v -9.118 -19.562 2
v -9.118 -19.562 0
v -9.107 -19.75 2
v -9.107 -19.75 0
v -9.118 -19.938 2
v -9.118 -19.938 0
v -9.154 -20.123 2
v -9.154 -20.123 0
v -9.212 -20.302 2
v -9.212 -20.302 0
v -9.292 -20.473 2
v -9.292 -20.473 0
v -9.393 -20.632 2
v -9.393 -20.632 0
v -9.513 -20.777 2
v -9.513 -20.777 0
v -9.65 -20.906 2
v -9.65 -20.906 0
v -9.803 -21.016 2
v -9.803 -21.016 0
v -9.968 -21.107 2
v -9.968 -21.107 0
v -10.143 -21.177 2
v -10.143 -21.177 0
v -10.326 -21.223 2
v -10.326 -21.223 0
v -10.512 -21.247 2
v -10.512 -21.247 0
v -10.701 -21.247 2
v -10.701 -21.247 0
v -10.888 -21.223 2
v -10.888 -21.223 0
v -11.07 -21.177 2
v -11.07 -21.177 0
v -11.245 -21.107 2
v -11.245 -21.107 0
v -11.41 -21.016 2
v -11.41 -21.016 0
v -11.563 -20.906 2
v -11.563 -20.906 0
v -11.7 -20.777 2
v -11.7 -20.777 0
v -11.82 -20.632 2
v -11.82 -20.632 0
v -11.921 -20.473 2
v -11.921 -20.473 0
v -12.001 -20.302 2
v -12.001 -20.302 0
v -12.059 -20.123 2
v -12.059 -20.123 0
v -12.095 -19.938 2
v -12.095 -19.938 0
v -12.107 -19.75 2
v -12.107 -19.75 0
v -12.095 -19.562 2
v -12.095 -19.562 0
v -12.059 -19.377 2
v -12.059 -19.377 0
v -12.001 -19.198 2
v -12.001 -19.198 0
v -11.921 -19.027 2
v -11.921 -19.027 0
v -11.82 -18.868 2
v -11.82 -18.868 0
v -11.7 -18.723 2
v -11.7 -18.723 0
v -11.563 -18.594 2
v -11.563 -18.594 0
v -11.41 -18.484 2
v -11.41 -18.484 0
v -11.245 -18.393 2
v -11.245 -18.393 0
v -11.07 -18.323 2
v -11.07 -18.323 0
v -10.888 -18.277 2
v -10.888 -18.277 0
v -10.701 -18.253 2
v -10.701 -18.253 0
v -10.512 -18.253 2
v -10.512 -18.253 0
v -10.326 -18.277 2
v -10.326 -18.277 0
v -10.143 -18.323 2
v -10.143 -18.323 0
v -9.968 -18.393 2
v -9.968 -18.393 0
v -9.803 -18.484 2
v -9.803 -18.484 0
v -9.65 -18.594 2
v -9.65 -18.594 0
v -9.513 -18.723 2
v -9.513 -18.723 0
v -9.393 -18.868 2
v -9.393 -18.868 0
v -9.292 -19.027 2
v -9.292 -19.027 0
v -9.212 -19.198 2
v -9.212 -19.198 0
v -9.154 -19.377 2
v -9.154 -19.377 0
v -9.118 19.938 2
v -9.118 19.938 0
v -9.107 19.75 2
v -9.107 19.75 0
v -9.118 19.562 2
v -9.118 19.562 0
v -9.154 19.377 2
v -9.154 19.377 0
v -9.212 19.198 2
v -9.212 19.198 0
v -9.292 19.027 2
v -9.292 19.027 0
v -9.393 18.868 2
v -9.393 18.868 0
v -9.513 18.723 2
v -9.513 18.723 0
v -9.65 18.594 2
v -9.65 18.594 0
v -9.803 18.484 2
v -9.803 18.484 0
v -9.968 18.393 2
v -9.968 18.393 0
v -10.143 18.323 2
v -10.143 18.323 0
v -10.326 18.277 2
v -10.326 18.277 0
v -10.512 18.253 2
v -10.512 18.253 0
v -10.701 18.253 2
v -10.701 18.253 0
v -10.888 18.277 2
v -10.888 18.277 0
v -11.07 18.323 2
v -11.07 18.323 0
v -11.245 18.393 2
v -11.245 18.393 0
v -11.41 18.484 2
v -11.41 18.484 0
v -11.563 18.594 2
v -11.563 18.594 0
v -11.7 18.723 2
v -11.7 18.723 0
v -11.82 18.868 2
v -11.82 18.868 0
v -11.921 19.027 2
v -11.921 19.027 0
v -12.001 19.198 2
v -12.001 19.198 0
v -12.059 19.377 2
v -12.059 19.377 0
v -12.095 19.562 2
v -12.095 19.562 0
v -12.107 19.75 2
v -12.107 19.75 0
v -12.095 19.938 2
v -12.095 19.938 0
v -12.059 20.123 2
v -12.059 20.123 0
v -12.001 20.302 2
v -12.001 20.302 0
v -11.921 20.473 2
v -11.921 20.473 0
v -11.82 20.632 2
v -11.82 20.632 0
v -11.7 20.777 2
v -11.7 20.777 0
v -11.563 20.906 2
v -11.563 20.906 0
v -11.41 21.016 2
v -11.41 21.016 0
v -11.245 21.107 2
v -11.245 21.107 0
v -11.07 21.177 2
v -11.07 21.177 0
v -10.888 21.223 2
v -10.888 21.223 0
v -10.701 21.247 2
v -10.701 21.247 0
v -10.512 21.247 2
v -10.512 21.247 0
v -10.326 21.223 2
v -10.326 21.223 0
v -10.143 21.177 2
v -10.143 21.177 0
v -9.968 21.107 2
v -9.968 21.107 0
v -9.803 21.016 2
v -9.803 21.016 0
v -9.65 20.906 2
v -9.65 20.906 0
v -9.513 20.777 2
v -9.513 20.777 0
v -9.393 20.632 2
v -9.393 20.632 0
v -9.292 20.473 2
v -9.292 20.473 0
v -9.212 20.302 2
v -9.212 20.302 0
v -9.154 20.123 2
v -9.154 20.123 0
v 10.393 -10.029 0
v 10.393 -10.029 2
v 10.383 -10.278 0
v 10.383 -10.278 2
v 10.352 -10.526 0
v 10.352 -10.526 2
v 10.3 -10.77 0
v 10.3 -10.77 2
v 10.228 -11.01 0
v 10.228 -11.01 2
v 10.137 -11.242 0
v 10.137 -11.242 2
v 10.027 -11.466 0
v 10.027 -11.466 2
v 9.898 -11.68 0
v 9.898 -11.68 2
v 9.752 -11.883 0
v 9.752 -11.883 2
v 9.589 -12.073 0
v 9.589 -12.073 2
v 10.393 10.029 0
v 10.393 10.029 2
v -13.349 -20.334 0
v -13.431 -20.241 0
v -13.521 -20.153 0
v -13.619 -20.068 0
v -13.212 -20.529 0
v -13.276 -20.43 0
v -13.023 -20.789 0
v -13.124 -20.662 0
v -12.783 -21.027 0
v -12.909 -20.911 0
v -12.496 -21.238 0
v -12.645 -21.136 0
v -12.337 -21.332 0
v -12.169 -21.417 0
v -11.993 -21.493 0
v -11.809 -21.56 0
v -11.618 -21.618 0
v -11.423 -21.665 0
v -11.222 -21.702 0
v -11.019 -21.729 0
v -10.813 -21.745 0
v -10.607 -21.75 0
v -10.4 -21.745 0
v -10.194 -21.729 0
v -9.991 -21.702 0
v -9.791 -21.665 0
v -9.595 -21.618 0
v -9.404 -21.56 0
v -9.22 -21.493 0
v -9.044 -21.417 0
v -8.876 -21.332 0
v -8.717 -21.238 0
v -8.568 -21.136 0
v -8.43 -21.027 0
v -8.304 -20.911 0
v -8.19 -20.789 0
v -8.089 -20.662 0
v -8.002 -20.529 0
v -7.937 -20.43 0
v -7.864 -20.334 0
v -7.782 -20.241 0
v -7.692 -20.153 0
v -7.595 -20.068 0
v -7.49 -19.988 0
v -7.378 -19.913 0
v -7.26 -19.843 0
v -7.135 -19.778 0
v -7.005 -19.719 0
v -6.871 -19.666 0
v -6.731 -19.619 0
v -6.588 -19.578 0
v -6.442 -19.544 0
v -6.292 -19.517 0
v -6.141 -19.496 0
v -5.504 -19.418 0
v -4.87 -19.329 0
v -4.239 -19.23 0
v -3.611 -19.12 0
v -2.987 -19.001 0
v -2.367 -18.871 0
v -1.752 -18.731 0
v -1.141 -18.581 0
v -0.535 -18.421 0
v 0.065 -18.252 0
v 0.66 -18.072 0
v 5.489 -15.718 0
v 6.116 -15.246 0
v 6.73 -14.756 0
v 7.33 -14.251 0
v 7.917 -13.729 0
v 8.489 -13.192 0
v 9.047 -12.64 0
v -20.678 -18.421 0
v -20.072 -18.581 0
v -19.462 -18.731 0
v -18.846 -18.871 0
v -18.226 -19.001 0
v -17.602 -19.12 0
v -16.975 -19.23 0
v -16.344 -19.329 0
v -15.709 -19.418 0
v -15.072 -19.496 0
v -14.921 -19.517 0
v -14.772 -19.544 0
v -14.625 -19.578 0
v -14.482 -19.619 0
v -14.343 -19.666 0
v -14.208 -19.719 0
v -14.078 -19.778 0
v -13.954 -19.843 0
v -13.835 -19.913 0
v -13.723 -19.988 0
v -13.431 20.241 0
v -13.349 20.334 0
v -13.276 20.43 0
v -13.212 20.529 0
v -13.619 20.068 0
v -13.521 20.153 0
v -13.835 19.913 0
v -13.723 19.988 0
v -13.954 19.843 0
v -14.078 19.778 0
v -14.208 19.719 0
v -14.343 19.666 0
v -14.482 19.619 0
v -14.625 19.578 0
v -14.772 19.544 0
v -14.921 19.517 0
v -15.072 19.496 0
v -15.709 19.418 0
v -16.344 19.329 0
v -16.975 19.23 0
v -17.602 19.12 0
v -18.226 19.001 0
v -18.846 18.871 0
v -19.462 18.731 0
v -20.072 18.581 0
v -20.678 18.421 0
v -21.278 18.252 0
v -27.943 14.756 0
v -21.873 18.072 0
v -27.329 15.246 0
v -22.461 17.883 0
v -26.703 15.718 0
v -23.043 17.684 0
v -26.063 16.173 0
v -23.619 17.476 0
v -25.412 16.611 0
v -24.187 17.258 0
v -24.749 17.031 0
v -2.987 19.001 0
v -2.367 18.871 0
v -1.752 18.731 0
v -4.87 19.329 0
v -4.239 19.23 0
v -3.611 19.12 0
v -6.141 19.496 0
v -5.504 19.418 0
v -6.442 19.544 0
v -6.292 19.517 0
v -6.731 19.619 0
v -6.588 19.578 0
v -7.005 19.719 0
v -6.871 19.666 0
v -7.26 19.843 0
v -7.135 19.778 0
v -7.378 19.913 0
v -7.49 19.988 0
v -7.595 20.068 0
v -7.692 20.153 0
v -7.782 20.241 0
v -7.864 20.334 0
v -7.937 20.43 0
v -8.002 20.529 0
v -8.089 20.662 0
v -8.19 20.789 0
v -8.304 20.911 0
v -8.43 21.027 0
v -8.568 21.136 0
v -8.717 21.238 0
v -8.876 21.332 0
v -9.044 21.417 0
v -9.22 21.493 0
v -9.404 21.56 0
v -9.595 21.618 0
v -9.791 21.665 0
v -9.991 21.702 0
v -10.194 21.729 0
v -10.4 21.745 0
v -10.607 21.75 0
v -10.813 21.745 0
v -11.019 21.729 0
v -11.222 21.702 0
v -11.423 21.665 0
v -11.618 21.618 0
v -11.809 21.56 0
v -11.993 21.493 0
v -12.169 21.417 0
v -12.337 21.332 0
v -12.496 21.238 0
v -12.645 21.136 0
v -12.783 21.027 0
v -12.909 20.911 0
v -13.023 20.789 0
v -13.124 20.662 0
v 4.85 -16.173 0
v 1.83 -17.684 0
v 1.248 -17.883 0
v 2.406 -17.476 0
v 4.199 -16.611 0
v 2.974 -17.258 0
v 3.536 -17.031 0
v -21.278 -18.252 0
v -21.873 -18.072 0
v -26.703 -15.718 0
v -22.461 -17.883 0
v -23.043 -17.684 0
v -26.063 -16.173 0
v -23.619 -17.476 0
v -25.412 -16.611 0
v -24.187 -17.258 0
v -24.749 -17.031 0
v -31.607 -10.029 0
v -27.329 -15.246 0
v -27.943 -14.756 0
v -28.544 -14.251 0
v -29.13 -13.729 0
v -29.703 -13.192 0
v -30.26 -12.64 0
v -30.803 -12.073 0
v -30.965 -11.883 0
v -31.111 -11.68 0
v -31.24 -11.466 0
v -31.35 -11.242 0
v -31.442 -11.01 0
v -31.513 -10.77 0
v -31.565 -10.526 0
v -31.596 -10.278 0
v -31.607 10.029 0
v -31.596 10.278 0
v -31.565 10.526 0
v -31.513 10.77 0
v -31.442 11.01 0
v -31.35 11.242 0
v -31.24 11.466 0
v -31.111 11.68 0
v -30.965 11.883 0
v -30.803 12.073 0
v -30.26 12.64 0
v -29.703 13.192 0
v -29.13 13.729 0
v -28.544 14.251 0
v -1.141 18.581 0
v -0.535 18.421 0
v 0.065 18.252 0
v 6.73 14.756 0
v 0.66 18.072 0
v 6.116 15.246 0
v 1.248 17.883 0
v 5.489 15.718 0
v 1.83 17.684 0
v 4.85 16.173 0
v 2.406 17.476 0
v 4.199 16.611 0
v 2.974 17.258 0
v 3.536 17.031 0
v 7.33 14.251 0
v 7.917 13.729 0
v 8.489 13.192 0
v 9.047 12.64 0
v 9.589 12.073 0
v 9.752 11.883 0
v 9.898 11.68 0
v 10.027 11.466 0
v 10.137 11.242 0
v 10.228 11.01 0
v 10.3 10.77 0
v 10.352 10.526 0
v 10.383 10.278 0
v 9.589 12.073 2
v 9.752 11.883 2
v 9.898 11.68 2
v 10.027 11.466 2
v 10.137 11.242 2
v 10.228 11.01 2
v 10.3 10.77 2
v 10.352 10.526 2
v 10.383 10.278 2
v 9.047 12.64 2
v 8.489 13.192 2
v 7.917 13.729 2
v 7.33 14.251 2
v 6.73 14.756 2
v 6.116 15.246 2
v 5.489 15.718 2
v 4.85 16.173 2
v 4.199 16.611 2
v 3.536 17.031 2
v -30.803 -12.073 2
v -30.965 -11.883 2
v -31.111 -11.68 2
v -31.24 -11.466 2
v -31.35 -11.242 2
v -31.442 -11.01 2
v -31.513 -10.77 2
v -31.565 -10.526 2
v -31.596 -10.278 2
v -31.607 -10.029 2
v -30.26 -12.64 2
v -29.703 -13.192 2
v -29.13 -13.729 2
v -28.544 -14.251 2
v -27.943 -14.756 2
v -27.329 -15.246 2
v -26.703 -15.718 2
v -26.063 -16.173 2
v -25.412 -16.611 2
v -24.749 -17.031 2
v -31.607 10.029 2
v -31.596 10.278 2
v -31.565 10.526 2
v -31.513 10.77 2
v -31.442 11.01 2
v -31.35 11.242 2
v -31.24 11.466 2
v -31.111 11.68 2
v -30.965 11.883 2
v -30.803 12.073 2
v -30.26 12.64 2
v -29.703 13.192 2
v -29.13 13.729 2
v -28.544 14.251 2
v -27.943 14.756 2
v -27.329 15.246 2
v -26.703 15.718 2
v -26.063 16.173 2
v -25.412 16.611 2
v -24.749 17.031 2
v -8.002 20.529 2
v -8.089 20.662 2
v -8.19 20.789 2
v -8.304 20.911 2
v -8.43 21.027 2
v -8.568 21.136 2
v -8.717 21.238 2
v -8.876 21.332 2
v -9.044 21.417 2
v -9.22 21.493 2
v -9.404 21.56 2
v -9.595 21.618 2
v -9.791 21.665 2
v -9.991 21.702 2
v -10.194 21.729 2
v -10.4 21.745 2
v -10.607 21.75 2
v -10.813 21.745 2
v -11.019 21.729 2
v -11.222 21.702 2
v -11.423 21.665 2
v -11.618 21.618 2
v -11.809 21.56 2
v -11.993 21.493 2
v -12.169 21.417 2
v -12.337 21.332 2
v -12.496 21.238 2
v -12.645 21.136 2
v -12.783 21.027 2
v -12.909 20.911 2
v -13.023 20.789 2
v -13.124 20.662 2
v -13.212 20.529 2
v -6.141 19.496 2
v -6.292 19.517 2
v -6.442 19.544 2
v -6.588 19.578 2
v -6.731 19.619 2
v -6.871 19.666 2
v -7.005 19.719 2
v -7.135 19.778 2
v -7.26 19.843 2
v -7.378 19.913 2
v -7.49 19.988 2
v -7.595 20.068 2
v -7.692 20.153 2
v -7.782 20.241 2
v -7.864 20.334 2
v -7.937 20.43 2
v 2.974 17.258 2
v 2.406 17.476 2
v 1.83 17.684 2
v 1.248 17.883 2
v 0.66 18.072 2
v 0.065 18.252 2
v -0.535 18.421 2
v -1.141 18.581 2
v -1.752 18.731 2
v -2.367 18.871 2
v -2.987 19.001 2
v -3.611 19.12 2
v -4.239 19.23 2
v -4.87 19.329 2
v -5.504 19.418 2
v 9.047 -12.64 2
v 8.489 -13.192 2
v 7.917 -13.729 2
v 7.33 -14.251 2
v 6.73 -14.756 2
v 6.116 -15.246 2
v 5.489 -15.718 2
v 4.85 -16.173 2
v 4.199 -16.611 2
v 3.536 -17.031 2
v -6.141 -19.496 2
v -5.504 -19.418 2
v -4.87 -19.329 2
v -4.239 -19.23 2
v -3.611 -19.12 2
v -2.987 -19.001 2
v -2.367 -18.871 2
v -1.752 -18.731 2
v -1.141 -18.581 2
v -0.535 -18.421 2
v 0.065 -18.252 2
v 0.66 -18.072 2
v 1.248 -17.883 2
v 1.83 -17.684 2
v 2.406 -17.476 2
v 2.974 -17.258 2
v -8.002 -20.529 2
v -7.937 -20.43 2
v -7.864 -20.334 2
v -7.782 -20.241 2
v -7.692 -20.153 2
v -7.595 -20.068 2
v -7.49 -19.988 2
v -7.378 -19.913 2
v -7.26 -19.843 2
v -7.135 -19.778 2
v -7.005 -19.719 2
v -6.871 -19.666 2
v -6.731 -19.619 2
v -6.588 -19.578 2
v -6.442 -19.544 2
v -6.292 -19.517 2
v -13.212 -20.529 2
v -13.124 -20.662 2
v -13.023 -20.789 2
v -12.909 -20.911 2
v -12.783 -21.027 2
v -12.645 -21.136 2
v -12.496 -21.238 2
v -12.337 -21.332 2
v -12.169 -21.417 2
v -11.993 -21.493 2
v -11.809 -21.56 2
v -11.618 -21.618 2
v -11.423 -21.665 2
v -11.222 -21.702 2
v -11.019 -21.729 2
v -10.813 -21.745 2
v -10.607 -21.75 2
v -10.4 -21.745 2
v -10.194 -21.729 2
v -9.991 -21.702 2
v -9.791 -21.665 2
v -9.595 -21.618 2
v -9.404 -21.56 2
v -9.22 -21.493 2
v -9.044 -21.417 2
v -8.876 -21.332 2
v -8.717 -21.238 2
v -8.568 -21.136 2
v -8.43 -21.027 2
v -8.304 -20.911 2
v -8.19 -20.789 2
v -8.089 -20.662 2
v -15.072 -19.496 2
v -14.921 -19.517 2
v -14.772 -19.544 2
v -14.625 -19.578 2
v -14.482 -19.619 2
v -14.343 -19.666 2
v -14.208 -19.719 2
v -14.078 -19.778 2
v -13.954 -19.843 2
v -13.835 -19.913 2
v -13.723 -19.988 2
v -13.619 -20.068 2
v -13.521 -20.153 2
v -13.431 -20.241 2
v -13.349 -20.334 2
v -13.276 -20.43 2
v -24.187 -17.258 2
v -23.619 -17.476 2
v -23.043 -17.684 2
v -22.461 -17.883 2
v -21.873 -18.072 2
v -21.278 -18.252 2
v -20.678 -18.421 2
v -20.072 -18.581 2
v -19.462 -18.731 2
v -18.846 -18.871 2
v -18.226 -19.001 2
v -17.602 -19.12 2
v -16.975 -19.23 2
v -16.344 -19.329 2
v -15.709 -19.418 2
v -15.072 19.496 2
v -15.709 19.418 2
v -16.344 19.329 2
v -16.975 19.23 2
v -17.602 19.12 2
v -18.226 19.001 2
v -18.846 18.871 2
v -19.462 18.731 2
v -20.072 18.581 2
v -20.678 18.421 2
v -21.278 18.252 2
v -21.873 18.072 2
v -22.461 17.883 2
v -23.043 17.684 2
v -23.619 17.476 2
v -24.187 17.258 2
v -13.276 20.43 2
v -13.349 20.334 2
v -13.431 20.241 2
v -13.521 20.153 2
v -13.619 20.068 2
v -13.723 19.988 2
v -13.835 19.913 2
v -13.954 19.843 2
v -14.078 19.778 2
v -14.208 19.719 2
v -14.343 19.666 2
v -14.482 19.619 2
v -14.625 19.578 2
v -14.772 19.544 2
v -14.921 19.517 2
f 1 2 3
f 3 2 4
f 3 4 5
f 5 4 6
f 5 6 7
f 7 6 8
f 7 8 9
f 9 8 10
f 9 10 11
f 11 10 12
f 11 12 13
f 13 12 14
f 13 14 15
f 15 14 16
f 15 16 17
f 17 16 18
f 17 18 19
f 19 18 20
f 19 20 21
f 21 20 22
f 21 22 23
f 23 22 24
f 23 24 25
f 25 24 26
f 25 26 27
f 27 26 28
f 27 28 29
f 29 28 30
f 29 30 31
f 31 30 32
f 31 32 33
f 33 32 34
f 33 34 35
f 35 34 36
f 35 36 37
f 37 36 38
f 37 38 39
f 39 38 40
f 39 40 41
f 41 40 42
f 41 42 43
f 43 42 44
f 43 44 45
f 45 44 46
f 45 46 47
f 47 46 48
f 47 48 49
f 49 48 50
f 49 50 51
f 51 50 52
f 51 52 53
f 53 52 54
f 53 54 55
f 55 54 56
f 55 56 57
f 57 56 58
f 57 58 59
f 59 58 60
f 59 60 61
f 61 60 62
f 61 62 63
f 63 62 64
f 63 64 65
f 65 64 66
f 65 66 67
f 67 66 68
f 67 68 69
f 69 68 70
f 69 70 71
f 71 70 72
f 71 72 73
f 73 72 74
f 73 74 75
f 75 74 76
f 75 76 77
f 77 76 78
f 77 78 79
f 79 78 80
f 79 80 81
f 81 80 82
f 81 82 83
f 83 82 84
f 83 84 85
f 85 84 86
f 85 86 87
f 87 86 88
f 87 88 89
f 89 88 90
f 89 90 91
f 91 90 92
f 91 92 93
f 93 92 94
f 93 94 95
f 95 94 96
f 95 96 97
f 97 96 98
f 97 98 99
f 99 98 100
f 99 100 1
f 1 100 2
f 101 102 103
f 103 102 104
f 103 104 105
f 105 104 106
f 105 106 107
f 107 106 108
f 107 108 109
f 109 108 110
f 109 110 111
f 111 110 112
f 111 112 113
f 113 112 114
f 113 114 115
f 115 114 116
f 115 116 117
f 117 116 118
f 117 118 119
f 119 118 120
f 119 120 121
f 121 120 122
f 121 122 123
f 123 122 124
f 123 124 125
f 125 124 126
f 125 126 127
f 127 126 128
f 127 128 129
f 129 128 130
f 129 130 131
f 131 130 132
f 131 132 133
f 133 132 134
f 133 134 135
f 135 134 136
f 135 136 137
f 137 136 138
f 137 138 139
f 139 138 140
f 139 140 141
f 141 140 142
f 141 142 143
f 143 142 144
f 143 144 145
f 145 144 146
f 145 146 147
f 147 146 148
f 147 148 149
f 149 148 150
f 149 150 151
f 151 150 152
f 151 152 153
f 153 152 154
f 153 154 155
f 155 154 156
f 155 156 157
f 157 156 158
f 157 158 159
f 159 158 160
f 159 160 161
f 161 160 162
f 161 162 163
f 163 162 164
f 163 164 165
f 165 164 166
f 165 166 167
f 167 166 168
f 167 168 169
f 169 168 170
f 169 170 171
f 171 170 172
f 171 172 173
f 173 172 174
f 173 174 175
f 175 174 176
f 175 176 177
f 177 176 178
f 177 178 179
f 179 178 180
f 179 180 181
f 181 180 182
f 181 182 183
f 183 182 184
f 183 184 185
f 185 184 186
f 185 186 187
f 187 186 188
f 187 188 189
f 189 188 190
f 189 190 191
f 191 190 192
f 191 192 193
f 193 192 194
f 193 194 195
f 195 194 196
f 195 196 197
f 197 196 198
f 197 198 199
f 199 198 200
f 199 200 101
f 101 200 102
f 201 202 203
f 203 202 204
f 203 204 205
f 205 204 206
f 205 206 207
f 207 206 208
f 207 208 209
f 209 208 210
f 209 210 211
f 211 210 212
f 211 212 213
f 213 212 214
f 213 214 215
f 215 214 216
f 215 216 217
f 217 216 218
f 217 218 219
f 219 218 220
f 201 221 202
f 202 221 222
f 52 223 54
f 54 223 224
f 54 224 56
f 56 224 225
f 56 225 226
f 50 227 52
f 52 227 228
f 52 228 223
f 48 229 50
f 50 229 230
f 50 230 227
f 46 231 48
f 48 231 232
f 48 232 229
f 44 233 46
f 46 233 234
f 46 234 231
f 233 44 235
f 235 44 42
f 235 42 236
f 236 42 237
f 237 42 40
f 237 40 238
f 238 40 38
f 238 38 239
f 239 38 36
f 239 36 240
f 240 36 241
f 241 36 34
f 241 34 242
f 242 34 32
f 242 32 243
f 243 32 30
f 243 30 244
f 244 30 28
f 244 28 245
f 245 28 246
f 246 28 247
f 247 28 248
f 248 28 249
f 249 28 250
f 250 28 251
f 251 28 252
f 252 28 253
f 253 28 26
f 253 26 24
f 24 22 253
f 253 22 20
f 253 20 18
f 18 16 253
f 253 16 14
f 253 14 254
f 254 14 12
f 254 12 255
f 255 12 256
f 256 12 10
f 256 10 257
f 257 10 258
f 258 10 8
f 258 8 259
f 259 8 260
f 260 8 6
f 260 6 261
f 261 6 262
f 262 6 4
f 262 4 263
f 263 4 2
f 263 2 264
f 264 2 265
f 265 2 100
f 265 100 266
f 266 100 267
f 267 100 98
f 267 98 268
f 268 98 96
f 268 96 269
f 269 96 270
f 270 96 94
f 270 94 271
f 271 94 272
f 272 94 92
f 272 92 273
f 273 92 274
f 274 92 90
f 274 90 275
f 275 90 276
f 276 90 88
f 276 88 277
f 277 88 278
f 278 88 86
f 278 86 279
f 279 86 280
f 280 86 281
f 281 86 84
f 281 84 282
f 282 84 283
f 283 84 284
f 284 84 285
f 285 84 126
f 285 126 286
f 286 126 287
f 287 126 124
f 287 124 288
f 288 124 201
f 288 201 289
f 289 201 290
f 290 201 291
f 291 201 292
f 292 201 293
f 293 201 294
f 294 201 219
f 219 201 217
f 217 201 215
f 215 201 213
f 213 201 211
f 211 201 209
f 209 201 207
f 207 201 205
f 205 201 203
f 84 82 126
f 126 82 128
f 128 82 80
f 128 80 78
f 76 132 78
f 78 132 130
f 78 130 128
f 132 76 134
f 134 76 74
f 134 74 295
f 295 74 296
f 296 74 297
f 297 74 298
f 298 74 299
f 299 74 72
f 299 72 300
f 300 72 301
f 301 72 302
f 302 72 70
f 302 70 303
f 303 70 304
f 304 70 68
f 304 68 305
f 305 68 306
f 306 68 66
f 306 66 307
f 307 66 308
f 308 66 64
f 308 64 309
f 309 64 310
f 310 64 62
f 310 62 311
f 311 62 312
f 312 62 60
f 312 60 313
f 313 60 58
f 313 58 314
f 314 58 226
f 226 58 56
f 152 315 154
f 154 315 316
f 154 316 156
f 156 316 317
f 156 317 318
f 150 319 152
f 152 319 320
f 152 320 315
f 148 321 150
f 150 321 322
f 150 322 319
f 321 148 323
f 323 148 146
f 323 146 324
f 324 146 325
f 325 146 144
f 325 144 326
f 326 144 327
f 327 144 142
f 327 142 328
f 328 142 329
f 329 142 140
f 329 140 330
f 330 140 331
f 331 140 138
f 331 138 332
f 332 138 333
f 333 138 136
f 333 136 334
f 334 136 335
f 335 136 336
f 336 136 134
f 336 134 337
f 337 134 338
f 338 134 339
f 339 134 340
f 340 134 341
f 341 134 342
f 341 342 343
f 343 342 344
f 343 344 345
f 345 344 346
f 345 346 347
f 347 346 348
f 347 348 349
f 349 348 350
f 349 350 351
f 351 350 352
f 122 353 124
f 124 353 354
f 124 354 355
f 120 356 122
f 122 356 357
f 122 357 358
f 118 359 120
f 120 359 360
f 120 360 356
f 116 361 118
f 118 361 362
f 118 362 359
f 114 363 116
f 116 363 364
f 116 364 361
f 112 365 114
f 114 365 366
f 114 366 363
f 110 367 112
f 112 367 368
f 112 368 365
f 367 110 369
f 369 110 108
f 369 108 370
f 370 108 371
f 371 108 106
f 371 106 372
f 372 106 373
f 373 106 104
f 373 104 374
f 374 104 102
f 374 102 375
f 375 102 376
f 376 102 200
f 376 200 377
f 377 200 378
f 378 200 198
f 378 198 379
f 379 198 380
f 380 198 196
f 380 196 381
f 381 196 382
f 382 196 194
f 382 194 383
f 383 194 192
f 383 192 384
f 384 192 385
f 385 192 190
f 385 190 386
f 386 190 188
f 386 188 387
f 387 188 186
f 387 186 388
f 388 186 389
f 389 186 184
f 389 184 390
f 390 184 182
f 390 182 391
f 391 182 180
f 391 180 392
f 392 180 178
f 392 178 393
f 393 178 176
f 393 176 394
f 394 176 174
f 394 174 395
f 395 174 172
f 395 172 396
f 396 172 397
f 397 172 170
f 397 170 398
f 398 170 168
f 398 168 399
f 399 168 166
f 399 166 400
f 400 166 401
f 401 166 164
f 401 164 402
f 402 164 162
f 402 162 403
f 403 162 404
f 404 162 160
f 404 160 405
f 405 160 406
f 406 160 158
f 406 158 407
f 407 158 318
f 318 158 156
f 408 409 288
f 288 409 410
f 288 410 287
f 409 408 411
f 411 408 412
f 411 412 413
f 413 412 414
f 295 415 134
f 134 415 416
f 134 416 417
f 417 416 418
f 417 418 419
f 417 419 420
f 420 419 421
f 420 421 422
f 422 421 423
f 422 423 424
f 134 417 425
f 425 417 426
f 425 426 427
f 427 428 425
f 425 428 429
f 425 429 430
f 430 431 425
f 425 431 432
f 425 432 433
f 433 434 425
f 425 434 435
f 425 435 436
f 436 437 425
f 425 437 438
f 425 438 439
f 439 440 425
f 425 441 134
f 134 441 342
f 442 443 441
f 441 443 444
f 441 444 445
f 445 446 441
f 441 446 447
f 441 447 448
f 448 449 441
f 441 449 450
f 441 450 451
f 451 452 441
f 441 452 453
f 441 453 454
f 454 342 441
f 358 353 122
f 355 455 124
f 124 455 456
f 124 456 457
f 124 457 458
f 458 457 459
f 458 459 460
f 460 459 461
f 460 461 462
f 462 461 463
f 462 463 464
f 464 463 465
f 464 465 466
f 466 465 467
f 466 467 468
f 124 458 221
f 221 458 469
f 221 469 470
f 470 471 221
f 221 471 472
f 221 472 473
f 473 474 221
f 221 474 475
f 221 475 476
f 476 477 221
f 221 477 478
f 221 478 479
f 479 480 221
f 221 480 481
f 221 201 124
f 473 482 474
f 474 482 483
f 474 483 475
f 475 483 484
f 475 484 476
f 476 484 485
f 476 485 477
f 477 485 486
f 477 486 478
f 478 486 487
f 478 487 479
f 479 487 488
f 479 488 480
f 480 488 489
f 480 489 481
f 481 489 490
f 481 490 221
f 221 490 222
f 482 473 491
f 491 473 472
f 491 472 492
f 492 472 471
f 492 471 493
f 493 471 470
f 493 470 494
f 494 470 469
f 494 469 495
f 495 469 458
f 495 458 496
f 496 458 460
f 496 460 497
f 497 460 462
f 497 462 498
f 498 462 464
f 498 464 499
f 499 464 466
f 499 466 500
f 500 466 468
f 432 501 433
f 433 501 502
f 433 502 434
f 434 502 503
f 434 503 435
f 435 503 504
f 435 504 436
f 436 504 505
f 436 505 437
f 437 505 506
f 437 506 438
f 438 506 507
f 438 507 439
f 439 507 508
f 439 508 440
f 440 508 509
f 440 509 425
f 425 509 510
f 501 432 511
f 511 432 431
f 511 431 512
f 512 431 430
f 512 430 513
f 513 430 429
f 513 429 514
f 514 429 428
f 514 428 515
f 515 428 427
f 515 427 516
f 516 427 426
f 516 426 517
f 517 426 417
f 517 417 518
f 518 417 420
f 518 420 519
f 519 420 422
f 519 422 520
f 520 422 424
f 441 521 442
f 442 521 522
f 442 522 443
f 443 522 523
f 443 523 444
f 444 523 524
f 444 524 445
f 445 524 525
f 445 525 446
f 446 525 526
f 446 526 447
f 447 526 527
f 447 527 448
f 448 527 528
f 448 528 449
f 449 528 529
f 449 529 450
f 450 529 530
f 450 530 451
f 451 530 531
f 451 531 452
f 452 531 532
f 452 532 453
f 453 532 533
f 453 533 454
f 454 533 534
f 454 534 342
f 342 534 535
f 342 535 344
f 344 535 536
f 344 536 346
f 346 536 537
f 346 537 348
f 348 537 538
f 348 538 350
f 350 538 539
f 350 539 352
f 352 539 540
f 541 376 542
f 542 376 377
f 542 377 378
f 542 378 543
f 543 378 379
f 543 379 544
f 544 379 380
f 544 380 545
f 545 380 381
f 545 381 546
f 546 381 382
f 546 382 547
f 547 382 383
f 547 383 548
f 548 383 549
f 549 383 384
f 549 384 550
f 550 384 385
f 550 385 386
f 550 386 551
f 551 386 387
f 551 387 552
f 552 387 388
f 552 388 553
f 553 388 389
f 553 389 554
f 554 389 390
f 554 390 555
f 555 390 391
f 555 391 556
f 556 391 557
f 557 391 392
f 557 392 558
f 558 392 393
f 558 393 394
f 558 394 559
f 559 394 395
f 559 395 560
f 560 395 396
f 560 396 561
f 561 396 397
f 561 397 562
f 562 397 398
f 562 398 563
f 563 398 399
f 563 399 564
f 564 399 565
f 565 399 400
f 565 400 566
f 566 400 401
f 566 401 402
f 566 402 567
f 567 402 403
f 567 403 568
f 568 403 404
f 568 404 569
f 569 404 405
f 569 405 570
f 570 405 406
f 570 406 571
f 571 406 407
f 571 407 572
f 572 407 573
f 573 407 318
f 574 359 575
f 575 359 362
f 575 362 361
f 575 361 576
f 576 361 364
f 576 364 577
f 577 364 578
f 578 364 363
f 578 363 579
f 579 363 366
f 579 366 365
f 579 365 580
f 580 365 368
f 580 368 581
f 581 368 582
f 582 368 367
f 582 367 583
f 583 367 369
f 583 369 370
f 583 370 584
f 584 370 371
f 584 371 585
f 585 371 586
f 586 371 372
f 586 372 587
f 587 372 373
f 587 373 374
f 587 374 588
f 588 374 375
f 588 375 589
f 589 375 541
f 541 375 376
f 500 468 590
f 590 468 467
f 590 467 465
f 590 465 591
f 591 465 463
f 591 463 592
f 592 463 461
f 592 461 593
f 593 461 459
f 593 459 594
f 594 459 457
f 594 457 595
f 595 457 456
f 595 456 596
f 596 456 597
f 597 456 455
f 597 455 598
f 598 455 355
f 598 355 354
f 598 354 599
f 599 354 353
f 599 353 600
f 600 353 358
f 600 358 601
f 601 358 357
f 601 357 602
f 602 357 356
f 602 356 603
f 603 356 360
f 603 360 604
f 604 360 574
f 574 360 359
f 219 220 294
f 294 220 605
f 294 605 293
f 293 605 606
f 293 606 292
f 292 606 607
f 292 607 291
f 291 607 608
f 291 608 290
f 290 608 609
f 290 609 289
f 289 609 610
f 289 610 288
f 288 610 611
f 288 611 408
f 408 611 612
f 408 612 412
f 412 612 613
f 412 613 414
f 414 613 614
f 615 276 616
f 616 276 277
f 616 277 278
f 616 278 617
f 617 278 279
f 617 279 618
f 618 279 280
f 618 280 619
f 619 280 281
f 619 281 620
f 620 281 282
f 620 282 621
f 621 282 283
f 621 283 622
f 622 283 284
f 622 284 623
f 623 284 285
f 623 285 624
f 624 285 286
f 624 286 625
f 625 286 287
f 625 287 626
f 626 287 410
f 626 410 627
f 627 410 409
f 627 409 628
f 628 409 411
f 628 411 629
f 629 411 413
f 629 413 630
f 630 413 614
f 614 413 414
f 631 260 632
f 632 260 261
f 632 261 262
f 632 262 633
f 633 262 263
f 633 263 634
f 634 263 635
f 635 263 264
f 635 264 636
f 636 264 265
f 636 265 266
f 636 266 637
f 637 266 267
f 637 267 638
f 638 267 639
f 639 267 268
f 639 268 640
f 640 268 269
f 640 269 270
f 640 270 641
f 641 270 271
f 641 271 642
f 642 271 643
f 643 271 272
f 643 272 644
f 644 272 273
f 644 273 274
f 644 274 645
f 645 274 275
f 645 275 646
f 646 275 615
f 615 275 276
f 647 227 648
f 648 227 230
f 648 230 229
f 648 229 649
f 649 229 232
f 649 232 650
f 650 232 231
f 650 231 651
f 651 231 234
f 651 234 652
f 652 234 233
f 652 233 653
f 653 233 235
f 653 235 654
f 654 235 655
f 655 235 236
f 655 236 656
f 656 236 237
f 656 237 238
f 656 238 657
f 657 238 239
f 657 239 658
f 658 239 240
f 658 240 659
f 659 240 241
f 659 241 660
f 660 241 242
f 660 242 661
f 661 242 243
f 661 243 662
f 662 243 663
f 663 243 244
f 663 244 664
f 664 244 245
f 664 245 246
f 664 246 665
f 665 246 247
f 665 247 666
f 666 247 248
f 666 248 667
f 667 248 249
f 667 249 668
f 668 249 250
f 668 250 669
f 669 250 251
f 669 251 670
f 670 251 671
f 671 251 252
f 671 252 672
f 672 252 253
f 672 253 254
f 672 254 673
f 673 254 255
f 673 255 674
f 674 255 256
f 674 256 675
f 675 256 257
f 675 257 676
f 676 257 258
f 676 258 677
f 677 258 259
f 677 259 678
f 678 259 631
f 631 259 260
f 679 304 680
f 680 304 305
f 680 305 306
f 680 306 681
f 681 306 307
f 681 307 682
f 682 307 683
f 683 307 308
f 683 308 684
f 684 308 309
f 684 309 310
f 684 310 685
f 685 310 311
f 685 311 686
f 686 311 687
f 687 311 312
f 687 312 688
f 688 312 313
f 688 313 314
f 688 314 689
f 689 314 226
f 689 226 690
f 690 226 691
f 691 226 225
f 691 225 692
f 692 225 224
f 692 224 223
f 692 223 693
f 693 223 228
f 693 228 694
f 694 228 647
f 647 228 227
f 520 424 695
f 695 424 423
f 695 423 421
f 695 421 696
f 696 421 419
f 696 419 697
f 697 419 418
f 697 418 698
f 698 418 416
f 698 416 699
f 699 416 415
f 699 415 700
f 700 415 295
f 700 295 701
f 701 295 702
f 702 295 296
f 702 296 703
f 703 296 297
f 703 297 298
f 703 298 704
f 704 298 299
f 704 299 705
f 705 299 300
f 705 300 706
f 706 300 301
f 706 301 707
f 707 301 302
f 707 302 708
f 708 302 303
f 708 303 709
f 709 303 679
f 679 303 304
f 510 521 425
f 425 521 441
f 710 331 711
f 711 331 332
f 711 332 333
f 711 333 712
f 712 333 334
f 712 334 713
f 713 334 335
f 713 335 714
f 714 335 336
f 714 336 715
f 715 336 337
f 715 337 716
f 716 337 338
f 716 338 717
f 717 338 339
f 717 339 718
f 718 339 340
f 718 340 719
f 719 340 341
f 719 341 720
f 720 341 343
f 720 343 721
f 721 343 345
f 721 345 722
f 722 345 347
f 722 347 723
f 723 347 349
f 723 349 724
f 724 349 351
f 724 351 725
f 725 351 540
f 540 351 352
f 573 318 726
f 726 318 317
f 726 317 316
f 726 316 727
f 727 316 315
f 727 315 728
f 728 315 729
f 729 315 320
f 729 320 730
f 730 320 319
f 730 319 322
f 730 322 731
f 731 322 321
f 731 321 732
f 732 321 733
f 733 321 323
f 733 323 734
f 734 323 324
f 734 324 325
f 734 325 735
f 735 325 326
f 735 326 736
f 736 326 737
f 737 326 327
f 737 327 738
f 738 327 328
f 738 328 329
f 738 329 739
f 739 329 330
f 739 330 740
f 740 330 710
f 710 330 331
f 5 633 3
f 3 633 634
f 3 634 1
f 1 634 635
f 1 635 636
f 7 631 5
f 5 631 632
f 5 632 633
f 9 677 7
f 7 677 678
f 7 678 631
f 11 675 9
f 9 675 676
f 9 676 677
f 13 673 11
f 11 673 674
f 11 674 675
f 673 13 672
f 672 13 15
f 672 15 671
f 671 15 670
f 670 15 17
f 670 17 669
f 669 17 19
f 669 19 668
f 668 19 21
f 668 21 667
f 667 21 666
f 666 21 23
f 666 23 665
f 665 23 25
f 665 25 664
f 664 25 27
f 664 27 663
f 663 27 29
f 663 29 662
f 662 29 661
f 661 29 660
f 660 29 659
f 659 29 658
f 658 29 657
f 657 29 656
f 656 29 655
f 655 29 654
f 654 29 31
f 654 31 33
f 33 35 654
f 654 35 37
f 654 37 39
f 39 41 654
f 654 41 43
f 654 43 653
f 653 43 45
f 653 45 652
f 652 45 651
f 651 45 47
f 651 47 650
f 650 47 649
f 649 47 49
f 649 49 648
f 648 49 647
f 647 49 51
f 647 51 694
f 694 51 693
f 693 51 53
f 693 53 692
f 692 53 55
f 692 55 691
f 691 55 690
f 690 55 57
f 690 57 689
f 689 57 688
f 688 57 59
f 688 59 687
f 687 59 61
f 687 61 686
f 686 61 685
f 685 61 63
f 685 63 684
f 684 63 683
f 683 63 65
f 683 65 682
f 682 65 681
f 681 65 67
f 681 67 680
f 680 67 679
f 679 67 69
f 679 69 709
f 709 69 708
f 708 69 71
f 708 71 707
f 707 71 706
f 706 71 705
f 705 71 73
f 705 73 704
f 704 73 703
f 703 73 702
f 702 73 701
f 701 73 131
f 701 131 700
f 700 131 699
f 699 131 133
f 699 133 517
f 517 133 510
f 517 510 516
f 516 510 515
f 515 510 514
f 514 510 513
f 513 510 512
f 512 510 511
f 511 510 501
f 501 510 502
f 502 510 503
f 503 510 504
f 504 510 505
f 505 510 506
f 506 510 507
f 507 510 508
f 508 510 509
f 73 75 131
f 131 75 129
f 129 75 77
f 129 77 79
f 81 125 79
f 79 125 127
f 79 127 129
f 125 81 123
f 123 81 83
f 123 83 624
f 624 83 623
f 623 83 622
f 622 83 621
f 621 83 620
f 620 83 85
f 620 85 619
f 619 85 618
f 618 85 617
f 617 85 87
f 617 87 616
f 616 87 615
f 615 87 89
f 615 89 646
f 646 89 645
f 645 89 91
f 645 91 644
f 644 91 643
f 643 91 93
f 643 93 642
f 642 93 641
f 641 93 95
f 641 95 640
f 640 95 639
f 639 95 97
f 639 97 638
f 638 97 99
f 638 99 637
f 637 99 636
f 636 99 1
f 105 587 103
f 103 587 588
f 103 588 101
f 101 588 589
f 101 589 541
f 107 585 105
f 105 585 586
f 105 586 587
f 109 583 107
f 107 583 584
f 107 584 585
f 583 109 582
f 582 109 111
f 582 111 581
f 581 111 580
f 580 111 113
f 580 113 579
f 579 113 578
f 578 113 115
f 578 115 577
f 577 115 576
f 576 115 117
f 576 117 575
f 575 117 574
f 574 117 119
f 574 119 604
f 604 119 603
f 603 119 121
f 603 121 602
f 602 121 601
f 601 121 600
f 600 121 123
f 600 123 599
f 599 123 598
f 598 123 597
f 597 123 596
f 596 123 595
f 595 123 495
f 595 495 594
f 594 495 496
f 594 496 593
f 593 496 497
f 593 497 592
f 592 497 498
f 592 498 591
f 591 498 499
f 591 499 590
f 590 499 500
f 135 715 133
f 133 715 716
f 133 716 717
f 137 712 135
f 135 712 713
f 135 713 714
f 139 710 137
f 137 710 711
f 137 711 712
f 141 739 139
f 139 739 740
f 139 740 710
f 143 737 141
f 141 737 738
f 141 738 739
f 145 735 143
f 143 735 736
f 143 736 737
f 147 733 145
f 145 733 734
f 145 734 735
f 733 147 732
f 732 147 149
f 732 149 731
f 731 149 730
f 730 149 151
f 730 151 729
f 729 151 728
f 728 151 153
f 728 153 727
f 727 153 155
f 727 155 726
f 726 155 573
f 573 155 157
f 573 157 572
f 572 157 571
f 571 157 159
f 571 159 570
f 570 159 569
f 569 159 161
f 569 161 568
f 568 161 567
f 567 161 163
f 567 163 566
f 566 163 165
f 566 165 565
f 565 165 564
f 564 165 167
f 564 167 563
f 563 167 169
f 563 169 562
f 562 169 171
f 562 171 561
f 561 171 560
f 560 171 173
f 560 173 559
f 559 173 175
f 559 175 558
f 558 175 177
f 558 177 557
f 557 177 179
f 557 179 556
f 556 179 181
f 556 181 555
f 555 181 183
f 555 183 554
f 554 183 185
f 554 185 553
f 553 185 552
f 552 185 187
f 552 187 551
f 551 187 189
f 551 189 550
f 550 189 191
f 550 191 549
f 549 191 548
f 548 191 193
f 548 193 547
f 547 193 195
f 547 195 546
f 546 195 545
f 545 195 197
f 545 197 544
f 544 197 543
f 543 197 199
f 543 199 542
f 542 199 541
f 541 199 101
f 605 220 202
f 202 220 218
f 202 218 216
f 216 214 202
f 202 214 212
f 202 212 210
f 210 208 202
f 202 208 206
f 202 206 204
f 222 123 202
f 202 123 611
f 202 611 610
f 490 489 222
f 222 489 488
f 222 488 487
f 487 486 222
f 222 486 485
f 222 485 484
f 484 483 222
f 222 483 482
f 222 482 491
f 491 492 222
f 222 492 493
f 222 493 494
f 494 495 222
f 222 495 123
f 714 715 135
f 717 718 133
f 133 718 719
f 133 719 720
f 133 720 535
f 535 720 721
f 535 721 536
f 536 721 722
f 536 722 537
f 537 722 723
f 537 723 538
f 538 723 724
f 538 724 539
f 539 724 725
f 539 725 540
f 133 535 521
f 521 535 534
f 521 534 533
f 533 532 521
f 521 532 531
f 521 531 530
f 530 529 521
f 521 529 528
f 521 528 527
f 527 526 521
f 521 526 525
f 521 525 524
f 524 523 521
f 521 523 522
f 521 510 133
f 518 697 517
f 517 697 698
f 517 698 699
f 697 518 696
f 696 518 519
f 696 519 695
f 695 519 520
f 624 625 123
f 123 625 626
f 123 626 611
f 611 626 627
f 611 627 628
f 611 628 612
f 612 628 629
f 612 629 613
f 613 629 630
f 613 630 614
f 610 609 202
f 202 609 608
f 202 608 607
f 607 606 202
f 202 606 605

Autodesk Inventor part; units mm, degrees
ref_plane "YZ Plane" through (0, 0, 0) normal (1, 0, 0) x (0, 1, 0)
ref_plane "XZ Plane" through (0, 0, 0) normal (0, 1, 0) x (-1, 0, 0)
ref_plane "XY Plane" through (0, 0, 0) normal (0, 0, 1) x (1, 0, 0)
sketch "Esquisse1" plane through (0, 0, 0) normal (0, 0, 1) x (1, 0, 0)
  ellipse E0 centre (-10.6066, 0) end of major axis (-38.5373, 0) minor radius 19.75 (-15.0725, 19.4959) -> (-24.7487, 17.0312) ccw projected
  ellipse E1 centre (-15.4634, 21.2024) end of major axis (-17.9082, 21.2024) minor radius 1.7287 (-15.0725, 19.4959) -> (-13.2116, 20.529) ccw projected
  ellipse E2 centre (-10.6066, 19.75) end of major axis (-7.7782, 19.75) minor radius 2 (-8.0016, 20.529) -> (-13.2116, 20.529) ccw projected
  ellipse E3 centre (-5.7498, 21.2024) end of major axis (-3.305, 21.2024) minor radius 1.7287 (-8.0016, 20.529) -> (-6.1407, 19.4959) ccw projected
  ellipse E4 centre (-10.6066, 0) end of major axis (17.3241, 0) minor radius 19.75 (3.5355, 17.0312) -> (-6.1407, 19.4959) ccw projected
  ellipse E5 centre (-10.6066, 0) end of major axis (-38.5373, 0) minor radius 19.75 (-24.7487, -17.0312) -> (-15.0725, -19.4959) ccw projected
  ellipse E6 centre (-15.4634, -21.2024) end of major axis (-17.9082, -21.2024) minor radius 1.7287 (-13.2116, -20.529) -> (-15.0725, -19.4959) ccw projected
  ellipse E7 centre (-10.6066, -19.75) end of major axis (-13.435, -19.75) minor radius 2 (-13.2116, -20.529) -> (-8.0016, -20.529) ccw projected
  ellipse E8 centre (-5.7498, -21.2024) end of major axis (-3.305, -21.2024) minor radius 1.7287 (-6.1407, -19.4959) -> (-8.0016, -20.529) ccw projected
  ellipse E9 centre (-10.6066, 0) end of major axis (17.3241, 0) minor radius 19.75 (-6.1407, -19.4959) -> (3.5355, -17.0312) ccw projected
  line L0 (7.3934, 13) -> (-28.6066, 13) construction
  line L1 (-28.6066, 13) -> (-28.6066, -13) construction
  line L2 (-28.6066, -13) -> (7.3934, -13) construction
  line L3 (7.3934, -13) -> (7.3934, 13) construction
  line L4 (7.3934, 13) -> (-28.6066, -13) construction
  line L5 (-28.6066, 13) -> (7.3934, -13) construction
  arc A0 (-31.6066, -11.1719) -> (-24.7487, -17.0312) centre (-9.517, 7.7394) ccw
  line L6 (-31.6066, -11.1719) -> (-31.6066, 0)
  line L7 (-10.6066, 0) -> (-8.2165, 0)
  line L8 (-10.6066, 0) -> (-10.6066, -5.4794)
  arc A1 (-24.7487, 17.0312) -> (-31.6066, 11.1719) centre (-9.517, -7.7394) ccw
  line L9 (-31.6066, 11.1719) -> (-31.6066, 0)
  arc A2 (3.5355, -17.0312) -> (10.3934, -11.1719) centre (-11.6962, 7.7394) ccw
  line L10 (10.3934, -11.1719) -> (10.3934, 0)
  arc A3 (10.3934, 11.1719) -> (3.5355, 17.0312) centre (-11.6962, -7.7394) ccw
  line L11 (10.3934, 11.1719) -> (10.3934, 0)
  point P0 (0, 0)
  point P1 (4.4659, -19.4959)
  point P2 (-4.4659, -19.4959)
  point P3 (14.1421, -17.0312)
  point P4 (14.1421, 17.0312)
  point P5 (-14.1421, -17.0312)
  point P6 (21, 6.606)
  point P7 (14.1424, -17.0311)
  point P8 (14.1419, 17.0313)
  point P9 (0, 19.0996)
  point P10 (-6.6399, 19.0242)
  point P11 (-7.0711, 19.1066)
  point P12 (-14.1418, 17.0314)
  point P13 (21, -6.606)
  dimension "d0" = 36
  dimension "d1" = 26
  dimension "d2" = 29.079
  dimension "d3" = 3
extrude "Extrusion1" add sketch "Esquisse1" along normal blind 2
fillet "Congé1" radius 3 4 edges at (-31.6066, 11.1719, 1) (-31.6066, -11.1719, 1) (10.3934, 11.1719, 1) (10.3934, -11.1719, 1)
sketch "Esquisse4" plane through (0, 0, 0) normal (0, 0, -1) x (-1, 0, 0)
  ellipse E0 centre (10.6066, 19.75) end of major axis (7.7782, 19.75) minor radius 2 (13.2116, 20.529) -> (8.0016, 20.529) ccw projected
  circle A0 centre (10.6066, 19.75) radius 1.5
  line L0 (0, 0) -> (14.2006, 0)
  circle A1 centre (10.6066, -19.75) radius 1.5
  dimension "d7" = 3
extrude "Extrusion2" cut sketch "Esquisse4" against normal up to surface (2 mm away)
properties part number "support-miroir"
